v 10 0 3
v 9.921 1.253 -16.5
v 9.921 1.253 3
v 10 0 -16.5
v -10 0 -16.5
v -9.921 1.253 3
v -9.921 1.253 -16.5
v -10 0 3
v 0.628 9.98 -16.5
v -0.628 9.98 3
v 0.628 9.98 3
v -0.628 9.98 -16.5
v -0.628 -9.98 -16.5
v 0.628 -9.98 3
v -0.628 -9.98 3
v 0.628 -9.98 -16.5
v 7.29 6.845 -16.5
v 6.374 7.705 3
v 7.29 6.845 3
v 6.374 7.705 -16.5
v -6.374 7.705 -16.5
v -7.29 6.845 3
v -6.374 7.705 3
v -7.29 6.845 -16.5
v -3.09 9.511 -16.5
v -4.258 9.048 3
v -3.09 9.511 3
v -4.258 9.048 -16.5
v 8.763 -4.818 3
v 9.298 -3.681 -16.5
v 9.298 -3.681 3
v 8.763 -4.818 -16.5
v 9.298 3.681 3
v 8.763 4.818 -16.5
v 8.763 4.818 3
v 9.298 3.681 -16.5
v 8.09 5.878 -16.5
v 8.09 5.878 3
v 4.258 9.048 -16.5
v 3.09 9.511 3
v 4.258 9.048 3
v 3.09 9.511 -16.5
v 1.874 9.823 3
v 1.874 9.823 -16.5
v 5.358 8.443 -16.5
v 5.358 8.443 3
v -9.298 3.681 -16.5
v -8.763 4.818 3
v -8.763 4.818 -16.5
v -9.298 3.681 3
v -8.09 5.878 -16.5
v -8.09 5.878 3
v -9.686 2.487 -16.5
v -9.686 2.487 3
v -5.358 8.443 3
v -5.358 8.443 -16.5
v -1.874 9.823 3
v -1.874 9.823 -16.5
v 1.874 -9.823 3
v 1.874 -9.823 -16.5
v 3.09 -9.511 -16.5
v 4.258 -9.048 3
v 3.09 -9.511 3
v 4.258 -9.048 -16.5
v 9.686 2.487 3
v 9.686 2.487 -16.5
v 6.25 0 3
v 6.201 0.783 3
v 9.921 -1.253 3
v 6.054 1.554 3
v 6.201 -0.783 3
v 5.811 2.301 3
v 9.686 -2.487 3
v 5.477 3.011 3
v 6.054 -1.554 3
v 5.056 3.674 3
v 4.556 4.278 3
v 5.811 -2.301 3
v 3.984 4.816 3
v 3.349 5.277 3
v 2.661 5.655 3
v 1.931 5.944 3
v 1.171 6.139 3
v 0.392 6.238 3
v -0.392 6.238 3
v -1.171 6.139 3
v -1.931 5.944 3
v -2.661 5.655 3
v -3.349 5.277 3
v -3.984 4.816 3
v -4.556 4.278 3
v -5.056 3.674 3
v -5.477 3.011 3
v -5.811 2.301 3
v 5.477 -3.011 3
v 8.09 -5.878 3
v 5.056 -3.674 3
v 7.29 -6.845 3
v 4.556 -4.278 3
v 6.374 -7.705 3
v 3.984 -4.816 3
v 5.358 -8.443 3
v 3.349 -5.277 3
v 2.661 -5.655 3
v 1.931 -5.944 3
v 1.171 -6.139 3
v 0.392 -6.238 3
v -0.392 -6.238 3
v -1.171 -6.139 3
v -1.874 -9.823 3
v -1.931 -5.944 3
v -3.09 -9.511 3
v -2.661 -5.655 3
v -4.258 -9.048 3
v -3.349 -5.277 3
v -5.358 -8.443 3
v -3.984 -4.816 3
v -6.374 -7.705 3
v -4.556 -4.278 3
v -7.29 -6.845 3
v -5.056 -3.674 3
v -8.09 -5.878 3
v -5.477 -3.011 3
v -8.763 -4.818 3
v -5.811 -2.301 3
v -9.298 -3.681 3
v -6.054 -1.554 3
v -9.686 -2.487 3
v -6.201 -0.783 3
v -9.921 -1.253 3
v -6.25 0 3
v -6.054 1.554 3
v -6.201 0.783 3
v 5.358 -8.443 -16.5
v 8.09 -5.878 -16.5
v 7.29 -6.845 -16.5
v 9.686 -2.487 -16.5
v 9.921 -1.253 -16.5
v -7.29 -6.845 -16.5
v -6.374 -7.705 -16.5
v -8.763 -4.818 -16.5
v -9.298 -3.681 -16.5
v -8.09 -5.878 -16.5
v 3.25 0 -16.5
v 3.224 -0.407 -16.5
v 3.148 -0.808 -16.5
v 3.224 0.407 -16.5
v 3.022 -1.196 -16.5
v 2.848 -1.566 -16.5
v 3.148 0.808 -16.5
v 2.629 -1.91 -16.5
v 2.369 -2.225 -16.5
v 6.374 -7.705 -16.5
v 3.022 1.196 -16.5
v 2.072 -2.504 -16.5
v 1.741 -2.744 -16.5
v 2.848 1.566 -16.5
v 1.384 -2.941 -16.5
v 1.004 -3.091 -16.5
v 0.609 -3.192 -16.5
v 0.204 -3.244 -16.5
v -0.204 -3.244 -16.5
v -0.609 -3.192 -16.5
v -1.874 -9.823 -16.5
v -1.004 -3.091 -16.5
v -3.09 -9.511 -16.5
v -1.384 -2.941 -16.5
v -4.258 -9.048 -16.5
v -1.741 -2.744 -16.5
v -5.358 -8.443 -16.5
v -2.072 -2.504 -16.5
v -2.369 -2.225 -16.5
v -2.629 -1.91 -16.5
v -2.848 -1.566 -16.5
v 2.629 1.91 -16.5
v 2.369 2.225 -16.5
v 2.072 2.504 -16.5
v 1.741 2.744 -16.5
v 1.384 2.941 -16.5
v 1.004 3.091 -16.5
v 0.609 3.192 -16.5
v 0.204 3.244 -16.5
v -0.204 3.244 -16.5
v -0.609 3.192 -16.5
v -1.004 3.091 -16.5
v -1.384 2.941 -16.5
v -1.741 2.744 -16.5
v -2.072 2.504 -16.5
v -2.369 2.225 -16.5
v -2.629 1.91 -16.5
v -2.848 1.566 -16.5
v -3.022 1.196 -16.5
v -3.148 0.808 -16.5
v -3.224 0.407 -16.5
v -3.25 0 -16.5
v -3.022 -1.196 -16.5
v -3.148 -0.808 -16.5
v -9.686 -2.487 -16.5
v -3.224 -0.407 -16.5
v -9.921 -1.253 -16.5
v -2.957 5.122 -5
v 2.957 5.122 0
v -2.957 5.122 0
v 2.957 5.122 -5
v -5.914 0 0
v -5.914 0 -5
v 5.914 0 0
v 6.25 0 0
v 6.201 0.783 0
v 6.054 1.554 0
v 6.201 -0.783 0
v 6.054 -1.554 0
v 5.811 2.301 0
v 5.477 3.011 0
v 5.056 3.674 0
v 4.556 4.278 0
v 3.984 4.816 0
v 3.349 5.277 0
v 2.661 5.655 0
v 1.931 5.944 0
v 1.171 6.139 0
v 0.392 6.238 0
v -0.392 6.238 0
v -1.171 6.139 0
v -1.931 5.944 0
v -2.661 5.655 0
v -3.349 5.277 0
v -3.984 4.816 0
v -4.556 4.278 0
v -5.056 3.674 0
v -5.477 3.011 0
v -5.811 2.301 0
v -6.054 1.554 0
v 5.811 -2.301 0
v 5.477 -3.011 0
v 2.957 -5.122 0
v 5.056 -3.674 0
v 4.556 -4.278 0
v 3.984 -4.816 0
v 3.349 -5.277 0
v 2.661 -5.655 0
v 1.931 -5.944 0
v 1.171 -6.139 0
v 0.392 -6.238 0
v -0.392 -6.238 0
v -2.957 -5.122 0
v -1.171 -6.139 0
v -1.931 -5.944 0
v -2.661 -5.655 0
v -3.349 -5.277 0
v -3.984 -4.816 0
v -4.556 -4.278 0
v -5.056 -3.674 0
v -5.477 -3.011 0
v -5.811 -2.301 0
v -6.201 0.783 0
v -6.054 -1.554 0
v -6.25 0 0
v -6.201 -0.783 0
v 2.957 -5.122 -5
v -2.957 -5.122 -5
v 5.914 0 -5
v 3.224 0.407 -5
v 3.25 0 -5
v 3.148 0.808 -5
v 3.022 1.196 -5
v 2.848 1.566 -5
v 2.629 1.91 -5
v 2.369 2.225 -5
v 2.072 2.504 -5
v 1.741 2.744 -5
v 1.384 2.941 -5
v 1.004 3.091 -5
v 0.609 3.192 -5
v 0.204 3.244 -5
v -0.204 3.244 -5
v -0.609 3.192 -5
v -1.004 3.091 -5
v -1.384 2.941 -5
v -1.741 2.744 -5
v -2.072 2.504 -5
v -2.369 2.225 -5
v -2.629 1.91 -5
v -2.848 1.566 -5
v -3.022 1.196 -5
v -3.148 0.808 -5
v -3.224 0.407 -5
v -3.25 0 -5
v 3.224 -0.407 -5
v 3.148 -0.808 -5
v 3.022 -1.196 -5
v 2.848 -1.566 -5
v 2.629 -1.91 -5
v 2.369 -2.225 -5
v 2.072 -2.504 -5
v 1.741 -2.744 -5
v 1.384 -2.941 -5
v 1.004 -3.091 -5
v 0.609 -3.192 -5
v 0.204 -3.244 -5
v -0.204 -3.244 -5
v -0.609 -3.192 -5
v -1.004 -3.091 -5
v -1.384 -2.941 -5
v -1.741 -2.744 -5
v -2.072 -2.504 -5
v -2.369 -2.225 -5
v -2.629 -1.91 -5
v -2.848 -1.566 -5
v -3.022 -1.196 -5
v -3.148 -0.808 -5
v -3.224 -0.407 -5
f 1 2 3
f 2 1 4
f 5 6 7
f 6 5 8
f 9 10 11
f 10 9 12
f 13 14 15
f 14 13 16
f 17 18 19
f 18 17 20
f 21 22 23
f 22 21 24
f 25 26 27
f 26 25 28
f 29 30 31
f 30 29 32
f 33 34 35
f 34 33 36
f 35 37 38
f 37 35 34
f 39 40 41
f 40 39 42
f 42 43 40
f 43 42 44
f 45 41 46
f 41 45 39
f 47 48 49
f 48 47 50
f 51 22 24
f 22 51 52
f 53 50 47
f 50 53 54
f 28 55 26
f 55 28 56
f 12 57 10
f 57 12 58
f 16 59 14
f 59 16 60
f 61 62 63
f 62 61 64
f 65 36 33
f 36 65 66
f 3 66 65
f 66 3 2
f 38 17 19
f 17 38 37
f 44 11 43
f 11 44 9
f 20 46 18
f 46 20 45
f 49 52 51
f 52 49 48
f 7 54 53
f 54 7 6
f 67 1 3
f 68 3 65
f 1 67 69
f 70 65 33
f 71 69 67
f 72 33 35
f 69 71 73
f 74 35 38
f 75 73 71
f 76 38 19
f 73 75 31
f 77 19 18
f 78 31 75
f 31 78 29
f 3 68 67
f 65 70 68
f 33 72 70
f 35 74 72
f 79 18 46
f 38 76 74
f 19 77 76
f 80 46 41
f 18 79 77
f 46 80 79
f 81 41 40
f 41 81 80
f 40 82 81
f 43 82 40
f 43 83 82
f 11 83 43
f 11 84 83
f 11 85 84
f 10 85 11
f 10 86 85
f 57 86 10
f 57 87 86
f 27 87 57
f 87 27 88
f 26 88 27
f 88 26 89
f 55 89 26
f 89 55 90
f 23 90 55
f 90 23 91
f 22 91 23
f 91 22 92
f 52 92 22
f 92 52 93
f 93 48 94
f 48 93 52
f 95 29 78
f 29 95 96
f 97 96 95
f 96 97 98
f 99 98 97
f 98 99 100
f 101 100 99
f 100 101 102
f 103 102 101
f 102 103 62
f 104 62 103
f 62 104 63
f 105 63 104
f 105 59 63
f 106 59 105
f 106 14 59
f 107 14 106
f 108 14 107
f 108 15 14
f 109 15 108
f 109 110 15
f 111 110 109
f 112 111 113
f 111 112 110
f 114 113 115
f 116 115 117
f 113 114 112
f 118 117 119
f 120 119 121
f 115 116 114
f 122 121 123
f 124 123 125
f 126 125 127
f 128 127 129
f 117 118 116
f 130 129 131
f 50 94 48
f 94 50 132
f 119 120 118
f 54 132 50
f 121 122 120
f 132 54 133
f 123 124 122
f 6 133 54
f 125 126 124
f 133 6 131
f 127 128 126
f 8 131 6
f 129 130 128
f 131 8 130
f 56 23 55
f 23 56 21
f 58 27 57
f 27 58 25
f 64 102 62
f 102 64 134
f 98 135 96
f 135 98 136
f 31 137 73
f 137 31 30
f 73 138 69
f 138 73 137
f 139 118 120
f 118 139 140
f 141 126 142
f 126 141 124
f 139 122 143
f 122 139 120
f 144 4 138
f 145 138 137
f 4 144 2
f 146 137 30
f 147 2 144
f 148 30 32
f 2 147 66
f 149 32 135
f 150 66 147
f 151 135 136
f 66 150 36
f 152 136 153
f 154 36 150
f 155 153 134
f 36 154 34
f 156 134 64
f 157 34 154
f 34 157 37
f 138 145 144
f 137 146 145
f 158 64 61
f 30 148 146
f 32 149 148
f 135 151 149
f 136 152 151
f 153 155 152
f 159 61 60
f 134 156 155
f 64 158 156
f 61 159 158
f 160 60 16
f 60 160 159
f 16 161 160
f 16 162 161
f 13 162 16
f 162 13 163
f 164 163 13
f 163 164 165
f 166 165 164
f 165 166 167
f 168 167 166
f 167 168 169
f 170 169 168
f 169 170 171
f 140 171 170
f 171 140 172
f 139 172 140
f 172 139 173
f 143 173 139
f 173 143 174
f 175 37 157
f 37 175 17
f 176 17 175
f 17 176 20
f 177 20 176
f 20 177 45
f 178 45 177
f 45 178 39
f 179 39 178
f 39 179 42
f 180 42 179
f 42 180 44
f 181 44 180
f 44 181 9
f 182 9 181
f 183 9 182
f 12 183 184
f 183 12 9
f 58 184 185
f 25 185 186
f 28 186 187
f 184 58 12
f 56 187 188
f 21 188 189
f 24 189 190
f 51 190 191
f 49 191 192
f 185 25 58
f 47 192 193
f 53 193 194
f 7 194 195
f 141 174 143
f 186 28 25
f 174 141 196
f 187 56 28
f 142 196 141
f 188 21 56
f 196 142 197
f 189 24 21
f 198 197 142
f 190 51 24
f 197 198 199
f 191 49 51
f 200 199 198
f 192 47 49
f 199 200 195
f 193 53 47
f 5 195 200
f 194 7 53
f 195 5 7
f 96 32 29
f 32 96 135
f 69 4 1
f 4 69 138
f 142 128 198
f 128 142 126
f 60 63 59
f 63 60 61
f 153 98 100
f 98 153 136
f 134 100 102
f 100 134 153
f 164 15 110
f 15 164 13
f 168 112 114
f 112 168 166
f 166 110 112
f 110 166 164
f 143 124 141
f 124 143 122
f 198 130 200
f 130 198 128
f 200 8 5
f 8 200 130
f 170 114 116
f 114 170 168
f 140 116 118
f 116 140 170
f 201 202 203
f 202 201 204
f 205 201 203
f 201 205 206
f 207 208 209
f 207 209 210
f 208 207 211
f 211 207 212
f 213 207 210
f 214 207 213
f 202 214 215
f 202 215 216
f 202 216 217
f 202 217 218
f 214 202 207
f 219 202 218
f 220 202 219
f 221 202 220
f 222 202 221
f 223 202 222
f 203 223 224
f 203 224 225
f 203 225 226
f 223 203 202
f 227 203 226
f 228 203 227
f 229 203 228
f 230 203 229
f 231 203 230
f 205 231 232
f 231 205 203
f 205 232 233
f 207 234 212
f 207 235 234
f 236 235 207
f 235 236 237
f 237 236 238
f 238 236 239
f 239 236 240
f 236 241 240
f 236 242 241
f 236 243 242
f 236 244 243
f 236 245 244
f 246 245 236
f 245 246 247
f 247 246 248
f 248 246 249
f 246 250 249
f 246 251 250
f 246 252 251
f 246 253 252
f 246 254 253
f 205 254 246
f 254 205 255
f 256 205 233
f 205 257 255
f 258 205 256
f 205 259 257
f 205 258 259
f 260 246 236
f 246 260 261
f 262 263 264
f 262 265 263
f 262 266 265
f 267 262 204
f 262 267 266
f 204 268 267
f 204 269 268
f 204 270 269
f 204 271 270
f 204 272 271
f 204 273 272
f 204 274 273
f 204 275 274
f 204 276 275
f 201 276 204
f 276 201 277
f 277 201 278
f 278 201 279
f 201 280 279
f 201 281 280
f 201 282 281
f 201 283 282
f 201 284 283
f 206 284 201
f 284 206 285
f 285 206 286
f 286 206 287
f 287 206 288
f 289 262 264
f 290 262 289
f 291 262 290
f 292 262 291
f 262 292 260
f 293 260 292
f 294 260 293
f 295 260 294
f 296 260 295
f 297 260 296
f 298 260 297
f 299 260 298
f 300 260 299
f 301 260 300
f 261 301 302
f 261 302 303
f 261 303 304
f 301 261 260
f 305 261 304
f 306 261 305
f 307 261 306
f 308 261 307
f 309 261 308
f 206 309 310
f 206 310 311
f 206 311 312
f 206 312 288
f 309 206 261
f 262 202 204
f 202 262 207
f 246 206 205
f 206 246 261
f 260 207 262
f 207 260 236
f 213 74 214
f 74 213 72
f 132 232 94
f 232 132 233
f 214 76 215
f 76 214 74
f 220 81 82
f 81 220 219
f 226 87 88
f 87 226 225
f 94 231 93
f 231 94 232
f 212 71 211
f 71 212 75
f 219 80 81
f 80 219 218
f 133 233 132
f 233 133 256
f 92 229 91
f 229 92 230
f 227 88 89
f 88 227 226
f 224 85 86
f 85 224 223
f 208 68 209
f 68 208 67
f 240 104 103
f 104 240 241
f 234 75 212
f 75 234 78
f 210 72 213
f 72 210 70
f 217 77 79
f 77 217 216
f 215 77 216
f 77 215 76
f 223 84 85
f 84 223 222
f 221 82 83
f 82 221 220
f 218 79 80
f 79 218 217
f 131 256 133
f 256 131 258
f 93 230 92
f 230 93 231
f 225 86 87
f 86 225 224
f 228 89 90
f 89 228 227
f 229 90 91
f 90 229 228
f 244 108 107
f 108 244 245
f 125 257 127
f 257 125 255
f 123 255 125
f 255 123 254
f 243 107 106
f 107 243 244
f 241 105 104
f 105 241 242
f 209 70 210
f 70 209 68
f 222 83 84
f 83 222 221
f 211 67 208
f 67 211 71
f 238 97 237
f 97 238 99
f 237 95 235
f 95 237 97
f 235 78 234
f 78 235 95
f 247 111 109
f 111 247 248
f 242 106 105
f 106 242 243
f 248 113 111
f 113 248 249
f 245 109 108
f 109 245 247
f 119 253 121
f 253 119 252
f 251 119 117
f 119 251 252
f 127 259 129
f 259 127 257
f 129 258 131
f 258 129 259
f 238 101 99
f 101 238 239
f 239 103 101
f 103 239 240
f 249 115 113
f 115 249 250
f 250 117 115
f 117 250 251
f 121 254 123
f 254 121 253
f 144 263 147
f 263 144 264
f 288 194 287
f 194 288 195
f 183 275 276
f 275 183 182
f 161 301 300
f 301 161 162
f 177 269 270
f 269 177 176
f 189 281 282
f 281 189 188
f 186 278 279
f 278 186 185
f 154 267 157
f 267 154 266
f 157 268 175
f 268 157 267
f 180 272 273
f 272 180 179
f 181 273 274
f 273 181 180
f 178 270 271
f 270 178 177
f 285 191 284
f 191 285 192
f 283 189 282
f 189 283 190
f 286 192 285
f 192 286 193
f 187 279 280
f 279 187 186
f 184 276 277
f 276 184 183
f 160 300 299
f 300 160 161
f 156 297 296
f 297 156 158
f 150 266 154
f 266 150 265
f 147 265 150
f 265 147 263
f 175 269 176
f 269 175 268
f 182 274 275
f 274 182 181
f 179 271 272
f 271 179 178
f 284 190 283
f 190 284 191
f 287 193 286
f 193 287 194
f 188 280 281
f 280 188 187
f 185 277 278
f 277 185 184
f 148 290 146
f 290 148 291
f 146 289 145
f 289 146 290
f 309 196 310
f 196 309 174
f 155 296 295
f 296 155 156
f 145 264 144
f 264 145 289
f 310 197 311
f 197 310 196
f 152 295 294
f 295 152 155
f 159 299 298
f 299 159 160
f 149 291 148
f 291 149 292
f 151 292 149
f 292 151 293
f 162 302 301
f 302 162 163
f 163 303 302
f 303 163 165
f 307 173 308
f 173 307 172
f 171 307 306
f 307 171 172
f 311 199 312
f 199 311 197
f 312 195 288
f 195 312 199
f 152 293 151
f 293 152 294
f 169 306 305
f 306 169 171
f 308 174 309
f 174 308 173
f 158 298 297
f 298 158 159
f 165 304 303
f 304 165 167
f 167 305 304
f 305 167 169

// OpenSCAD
$fn = 50;


difference() {
	union() {
		translate(v = [0, 0, -16.5000000000]) {
			cylinder(h = 19.5000000000, r = 10.0000000000);
		}
		#translate(v = [0, 0, -18.0000000000]) {
			cylinder(h = 18, r = 2.8750000000);
		}
	}
	union() {
		translate(v = [0, 0, 0]) {
			rotate(a = [0, 0, 0]) {
				difference() {
					union() {
						translate(v = [0, 0, -5]) {
							linear_extrude(height = 5) {
								polygon(points = [[5.9142500000, 0.0000000000], [2.9571250000, 5.1218907443], [-2.9571250000, 5.1218907443], [-5.9142500000, 0.0000000000], [-2.9571250000, -5.1218907443], [2.9571250000, -5.1218907443]]);
							}
						}
					}
					union();
				}
			}
		}
		#cylinder(h = 3, r = 6.2500000000);
		#translate(v = [0, 0, -100.0000000000]) {
			cylinder(h = 200, r = 3.2500000000);
		}
	}
}
